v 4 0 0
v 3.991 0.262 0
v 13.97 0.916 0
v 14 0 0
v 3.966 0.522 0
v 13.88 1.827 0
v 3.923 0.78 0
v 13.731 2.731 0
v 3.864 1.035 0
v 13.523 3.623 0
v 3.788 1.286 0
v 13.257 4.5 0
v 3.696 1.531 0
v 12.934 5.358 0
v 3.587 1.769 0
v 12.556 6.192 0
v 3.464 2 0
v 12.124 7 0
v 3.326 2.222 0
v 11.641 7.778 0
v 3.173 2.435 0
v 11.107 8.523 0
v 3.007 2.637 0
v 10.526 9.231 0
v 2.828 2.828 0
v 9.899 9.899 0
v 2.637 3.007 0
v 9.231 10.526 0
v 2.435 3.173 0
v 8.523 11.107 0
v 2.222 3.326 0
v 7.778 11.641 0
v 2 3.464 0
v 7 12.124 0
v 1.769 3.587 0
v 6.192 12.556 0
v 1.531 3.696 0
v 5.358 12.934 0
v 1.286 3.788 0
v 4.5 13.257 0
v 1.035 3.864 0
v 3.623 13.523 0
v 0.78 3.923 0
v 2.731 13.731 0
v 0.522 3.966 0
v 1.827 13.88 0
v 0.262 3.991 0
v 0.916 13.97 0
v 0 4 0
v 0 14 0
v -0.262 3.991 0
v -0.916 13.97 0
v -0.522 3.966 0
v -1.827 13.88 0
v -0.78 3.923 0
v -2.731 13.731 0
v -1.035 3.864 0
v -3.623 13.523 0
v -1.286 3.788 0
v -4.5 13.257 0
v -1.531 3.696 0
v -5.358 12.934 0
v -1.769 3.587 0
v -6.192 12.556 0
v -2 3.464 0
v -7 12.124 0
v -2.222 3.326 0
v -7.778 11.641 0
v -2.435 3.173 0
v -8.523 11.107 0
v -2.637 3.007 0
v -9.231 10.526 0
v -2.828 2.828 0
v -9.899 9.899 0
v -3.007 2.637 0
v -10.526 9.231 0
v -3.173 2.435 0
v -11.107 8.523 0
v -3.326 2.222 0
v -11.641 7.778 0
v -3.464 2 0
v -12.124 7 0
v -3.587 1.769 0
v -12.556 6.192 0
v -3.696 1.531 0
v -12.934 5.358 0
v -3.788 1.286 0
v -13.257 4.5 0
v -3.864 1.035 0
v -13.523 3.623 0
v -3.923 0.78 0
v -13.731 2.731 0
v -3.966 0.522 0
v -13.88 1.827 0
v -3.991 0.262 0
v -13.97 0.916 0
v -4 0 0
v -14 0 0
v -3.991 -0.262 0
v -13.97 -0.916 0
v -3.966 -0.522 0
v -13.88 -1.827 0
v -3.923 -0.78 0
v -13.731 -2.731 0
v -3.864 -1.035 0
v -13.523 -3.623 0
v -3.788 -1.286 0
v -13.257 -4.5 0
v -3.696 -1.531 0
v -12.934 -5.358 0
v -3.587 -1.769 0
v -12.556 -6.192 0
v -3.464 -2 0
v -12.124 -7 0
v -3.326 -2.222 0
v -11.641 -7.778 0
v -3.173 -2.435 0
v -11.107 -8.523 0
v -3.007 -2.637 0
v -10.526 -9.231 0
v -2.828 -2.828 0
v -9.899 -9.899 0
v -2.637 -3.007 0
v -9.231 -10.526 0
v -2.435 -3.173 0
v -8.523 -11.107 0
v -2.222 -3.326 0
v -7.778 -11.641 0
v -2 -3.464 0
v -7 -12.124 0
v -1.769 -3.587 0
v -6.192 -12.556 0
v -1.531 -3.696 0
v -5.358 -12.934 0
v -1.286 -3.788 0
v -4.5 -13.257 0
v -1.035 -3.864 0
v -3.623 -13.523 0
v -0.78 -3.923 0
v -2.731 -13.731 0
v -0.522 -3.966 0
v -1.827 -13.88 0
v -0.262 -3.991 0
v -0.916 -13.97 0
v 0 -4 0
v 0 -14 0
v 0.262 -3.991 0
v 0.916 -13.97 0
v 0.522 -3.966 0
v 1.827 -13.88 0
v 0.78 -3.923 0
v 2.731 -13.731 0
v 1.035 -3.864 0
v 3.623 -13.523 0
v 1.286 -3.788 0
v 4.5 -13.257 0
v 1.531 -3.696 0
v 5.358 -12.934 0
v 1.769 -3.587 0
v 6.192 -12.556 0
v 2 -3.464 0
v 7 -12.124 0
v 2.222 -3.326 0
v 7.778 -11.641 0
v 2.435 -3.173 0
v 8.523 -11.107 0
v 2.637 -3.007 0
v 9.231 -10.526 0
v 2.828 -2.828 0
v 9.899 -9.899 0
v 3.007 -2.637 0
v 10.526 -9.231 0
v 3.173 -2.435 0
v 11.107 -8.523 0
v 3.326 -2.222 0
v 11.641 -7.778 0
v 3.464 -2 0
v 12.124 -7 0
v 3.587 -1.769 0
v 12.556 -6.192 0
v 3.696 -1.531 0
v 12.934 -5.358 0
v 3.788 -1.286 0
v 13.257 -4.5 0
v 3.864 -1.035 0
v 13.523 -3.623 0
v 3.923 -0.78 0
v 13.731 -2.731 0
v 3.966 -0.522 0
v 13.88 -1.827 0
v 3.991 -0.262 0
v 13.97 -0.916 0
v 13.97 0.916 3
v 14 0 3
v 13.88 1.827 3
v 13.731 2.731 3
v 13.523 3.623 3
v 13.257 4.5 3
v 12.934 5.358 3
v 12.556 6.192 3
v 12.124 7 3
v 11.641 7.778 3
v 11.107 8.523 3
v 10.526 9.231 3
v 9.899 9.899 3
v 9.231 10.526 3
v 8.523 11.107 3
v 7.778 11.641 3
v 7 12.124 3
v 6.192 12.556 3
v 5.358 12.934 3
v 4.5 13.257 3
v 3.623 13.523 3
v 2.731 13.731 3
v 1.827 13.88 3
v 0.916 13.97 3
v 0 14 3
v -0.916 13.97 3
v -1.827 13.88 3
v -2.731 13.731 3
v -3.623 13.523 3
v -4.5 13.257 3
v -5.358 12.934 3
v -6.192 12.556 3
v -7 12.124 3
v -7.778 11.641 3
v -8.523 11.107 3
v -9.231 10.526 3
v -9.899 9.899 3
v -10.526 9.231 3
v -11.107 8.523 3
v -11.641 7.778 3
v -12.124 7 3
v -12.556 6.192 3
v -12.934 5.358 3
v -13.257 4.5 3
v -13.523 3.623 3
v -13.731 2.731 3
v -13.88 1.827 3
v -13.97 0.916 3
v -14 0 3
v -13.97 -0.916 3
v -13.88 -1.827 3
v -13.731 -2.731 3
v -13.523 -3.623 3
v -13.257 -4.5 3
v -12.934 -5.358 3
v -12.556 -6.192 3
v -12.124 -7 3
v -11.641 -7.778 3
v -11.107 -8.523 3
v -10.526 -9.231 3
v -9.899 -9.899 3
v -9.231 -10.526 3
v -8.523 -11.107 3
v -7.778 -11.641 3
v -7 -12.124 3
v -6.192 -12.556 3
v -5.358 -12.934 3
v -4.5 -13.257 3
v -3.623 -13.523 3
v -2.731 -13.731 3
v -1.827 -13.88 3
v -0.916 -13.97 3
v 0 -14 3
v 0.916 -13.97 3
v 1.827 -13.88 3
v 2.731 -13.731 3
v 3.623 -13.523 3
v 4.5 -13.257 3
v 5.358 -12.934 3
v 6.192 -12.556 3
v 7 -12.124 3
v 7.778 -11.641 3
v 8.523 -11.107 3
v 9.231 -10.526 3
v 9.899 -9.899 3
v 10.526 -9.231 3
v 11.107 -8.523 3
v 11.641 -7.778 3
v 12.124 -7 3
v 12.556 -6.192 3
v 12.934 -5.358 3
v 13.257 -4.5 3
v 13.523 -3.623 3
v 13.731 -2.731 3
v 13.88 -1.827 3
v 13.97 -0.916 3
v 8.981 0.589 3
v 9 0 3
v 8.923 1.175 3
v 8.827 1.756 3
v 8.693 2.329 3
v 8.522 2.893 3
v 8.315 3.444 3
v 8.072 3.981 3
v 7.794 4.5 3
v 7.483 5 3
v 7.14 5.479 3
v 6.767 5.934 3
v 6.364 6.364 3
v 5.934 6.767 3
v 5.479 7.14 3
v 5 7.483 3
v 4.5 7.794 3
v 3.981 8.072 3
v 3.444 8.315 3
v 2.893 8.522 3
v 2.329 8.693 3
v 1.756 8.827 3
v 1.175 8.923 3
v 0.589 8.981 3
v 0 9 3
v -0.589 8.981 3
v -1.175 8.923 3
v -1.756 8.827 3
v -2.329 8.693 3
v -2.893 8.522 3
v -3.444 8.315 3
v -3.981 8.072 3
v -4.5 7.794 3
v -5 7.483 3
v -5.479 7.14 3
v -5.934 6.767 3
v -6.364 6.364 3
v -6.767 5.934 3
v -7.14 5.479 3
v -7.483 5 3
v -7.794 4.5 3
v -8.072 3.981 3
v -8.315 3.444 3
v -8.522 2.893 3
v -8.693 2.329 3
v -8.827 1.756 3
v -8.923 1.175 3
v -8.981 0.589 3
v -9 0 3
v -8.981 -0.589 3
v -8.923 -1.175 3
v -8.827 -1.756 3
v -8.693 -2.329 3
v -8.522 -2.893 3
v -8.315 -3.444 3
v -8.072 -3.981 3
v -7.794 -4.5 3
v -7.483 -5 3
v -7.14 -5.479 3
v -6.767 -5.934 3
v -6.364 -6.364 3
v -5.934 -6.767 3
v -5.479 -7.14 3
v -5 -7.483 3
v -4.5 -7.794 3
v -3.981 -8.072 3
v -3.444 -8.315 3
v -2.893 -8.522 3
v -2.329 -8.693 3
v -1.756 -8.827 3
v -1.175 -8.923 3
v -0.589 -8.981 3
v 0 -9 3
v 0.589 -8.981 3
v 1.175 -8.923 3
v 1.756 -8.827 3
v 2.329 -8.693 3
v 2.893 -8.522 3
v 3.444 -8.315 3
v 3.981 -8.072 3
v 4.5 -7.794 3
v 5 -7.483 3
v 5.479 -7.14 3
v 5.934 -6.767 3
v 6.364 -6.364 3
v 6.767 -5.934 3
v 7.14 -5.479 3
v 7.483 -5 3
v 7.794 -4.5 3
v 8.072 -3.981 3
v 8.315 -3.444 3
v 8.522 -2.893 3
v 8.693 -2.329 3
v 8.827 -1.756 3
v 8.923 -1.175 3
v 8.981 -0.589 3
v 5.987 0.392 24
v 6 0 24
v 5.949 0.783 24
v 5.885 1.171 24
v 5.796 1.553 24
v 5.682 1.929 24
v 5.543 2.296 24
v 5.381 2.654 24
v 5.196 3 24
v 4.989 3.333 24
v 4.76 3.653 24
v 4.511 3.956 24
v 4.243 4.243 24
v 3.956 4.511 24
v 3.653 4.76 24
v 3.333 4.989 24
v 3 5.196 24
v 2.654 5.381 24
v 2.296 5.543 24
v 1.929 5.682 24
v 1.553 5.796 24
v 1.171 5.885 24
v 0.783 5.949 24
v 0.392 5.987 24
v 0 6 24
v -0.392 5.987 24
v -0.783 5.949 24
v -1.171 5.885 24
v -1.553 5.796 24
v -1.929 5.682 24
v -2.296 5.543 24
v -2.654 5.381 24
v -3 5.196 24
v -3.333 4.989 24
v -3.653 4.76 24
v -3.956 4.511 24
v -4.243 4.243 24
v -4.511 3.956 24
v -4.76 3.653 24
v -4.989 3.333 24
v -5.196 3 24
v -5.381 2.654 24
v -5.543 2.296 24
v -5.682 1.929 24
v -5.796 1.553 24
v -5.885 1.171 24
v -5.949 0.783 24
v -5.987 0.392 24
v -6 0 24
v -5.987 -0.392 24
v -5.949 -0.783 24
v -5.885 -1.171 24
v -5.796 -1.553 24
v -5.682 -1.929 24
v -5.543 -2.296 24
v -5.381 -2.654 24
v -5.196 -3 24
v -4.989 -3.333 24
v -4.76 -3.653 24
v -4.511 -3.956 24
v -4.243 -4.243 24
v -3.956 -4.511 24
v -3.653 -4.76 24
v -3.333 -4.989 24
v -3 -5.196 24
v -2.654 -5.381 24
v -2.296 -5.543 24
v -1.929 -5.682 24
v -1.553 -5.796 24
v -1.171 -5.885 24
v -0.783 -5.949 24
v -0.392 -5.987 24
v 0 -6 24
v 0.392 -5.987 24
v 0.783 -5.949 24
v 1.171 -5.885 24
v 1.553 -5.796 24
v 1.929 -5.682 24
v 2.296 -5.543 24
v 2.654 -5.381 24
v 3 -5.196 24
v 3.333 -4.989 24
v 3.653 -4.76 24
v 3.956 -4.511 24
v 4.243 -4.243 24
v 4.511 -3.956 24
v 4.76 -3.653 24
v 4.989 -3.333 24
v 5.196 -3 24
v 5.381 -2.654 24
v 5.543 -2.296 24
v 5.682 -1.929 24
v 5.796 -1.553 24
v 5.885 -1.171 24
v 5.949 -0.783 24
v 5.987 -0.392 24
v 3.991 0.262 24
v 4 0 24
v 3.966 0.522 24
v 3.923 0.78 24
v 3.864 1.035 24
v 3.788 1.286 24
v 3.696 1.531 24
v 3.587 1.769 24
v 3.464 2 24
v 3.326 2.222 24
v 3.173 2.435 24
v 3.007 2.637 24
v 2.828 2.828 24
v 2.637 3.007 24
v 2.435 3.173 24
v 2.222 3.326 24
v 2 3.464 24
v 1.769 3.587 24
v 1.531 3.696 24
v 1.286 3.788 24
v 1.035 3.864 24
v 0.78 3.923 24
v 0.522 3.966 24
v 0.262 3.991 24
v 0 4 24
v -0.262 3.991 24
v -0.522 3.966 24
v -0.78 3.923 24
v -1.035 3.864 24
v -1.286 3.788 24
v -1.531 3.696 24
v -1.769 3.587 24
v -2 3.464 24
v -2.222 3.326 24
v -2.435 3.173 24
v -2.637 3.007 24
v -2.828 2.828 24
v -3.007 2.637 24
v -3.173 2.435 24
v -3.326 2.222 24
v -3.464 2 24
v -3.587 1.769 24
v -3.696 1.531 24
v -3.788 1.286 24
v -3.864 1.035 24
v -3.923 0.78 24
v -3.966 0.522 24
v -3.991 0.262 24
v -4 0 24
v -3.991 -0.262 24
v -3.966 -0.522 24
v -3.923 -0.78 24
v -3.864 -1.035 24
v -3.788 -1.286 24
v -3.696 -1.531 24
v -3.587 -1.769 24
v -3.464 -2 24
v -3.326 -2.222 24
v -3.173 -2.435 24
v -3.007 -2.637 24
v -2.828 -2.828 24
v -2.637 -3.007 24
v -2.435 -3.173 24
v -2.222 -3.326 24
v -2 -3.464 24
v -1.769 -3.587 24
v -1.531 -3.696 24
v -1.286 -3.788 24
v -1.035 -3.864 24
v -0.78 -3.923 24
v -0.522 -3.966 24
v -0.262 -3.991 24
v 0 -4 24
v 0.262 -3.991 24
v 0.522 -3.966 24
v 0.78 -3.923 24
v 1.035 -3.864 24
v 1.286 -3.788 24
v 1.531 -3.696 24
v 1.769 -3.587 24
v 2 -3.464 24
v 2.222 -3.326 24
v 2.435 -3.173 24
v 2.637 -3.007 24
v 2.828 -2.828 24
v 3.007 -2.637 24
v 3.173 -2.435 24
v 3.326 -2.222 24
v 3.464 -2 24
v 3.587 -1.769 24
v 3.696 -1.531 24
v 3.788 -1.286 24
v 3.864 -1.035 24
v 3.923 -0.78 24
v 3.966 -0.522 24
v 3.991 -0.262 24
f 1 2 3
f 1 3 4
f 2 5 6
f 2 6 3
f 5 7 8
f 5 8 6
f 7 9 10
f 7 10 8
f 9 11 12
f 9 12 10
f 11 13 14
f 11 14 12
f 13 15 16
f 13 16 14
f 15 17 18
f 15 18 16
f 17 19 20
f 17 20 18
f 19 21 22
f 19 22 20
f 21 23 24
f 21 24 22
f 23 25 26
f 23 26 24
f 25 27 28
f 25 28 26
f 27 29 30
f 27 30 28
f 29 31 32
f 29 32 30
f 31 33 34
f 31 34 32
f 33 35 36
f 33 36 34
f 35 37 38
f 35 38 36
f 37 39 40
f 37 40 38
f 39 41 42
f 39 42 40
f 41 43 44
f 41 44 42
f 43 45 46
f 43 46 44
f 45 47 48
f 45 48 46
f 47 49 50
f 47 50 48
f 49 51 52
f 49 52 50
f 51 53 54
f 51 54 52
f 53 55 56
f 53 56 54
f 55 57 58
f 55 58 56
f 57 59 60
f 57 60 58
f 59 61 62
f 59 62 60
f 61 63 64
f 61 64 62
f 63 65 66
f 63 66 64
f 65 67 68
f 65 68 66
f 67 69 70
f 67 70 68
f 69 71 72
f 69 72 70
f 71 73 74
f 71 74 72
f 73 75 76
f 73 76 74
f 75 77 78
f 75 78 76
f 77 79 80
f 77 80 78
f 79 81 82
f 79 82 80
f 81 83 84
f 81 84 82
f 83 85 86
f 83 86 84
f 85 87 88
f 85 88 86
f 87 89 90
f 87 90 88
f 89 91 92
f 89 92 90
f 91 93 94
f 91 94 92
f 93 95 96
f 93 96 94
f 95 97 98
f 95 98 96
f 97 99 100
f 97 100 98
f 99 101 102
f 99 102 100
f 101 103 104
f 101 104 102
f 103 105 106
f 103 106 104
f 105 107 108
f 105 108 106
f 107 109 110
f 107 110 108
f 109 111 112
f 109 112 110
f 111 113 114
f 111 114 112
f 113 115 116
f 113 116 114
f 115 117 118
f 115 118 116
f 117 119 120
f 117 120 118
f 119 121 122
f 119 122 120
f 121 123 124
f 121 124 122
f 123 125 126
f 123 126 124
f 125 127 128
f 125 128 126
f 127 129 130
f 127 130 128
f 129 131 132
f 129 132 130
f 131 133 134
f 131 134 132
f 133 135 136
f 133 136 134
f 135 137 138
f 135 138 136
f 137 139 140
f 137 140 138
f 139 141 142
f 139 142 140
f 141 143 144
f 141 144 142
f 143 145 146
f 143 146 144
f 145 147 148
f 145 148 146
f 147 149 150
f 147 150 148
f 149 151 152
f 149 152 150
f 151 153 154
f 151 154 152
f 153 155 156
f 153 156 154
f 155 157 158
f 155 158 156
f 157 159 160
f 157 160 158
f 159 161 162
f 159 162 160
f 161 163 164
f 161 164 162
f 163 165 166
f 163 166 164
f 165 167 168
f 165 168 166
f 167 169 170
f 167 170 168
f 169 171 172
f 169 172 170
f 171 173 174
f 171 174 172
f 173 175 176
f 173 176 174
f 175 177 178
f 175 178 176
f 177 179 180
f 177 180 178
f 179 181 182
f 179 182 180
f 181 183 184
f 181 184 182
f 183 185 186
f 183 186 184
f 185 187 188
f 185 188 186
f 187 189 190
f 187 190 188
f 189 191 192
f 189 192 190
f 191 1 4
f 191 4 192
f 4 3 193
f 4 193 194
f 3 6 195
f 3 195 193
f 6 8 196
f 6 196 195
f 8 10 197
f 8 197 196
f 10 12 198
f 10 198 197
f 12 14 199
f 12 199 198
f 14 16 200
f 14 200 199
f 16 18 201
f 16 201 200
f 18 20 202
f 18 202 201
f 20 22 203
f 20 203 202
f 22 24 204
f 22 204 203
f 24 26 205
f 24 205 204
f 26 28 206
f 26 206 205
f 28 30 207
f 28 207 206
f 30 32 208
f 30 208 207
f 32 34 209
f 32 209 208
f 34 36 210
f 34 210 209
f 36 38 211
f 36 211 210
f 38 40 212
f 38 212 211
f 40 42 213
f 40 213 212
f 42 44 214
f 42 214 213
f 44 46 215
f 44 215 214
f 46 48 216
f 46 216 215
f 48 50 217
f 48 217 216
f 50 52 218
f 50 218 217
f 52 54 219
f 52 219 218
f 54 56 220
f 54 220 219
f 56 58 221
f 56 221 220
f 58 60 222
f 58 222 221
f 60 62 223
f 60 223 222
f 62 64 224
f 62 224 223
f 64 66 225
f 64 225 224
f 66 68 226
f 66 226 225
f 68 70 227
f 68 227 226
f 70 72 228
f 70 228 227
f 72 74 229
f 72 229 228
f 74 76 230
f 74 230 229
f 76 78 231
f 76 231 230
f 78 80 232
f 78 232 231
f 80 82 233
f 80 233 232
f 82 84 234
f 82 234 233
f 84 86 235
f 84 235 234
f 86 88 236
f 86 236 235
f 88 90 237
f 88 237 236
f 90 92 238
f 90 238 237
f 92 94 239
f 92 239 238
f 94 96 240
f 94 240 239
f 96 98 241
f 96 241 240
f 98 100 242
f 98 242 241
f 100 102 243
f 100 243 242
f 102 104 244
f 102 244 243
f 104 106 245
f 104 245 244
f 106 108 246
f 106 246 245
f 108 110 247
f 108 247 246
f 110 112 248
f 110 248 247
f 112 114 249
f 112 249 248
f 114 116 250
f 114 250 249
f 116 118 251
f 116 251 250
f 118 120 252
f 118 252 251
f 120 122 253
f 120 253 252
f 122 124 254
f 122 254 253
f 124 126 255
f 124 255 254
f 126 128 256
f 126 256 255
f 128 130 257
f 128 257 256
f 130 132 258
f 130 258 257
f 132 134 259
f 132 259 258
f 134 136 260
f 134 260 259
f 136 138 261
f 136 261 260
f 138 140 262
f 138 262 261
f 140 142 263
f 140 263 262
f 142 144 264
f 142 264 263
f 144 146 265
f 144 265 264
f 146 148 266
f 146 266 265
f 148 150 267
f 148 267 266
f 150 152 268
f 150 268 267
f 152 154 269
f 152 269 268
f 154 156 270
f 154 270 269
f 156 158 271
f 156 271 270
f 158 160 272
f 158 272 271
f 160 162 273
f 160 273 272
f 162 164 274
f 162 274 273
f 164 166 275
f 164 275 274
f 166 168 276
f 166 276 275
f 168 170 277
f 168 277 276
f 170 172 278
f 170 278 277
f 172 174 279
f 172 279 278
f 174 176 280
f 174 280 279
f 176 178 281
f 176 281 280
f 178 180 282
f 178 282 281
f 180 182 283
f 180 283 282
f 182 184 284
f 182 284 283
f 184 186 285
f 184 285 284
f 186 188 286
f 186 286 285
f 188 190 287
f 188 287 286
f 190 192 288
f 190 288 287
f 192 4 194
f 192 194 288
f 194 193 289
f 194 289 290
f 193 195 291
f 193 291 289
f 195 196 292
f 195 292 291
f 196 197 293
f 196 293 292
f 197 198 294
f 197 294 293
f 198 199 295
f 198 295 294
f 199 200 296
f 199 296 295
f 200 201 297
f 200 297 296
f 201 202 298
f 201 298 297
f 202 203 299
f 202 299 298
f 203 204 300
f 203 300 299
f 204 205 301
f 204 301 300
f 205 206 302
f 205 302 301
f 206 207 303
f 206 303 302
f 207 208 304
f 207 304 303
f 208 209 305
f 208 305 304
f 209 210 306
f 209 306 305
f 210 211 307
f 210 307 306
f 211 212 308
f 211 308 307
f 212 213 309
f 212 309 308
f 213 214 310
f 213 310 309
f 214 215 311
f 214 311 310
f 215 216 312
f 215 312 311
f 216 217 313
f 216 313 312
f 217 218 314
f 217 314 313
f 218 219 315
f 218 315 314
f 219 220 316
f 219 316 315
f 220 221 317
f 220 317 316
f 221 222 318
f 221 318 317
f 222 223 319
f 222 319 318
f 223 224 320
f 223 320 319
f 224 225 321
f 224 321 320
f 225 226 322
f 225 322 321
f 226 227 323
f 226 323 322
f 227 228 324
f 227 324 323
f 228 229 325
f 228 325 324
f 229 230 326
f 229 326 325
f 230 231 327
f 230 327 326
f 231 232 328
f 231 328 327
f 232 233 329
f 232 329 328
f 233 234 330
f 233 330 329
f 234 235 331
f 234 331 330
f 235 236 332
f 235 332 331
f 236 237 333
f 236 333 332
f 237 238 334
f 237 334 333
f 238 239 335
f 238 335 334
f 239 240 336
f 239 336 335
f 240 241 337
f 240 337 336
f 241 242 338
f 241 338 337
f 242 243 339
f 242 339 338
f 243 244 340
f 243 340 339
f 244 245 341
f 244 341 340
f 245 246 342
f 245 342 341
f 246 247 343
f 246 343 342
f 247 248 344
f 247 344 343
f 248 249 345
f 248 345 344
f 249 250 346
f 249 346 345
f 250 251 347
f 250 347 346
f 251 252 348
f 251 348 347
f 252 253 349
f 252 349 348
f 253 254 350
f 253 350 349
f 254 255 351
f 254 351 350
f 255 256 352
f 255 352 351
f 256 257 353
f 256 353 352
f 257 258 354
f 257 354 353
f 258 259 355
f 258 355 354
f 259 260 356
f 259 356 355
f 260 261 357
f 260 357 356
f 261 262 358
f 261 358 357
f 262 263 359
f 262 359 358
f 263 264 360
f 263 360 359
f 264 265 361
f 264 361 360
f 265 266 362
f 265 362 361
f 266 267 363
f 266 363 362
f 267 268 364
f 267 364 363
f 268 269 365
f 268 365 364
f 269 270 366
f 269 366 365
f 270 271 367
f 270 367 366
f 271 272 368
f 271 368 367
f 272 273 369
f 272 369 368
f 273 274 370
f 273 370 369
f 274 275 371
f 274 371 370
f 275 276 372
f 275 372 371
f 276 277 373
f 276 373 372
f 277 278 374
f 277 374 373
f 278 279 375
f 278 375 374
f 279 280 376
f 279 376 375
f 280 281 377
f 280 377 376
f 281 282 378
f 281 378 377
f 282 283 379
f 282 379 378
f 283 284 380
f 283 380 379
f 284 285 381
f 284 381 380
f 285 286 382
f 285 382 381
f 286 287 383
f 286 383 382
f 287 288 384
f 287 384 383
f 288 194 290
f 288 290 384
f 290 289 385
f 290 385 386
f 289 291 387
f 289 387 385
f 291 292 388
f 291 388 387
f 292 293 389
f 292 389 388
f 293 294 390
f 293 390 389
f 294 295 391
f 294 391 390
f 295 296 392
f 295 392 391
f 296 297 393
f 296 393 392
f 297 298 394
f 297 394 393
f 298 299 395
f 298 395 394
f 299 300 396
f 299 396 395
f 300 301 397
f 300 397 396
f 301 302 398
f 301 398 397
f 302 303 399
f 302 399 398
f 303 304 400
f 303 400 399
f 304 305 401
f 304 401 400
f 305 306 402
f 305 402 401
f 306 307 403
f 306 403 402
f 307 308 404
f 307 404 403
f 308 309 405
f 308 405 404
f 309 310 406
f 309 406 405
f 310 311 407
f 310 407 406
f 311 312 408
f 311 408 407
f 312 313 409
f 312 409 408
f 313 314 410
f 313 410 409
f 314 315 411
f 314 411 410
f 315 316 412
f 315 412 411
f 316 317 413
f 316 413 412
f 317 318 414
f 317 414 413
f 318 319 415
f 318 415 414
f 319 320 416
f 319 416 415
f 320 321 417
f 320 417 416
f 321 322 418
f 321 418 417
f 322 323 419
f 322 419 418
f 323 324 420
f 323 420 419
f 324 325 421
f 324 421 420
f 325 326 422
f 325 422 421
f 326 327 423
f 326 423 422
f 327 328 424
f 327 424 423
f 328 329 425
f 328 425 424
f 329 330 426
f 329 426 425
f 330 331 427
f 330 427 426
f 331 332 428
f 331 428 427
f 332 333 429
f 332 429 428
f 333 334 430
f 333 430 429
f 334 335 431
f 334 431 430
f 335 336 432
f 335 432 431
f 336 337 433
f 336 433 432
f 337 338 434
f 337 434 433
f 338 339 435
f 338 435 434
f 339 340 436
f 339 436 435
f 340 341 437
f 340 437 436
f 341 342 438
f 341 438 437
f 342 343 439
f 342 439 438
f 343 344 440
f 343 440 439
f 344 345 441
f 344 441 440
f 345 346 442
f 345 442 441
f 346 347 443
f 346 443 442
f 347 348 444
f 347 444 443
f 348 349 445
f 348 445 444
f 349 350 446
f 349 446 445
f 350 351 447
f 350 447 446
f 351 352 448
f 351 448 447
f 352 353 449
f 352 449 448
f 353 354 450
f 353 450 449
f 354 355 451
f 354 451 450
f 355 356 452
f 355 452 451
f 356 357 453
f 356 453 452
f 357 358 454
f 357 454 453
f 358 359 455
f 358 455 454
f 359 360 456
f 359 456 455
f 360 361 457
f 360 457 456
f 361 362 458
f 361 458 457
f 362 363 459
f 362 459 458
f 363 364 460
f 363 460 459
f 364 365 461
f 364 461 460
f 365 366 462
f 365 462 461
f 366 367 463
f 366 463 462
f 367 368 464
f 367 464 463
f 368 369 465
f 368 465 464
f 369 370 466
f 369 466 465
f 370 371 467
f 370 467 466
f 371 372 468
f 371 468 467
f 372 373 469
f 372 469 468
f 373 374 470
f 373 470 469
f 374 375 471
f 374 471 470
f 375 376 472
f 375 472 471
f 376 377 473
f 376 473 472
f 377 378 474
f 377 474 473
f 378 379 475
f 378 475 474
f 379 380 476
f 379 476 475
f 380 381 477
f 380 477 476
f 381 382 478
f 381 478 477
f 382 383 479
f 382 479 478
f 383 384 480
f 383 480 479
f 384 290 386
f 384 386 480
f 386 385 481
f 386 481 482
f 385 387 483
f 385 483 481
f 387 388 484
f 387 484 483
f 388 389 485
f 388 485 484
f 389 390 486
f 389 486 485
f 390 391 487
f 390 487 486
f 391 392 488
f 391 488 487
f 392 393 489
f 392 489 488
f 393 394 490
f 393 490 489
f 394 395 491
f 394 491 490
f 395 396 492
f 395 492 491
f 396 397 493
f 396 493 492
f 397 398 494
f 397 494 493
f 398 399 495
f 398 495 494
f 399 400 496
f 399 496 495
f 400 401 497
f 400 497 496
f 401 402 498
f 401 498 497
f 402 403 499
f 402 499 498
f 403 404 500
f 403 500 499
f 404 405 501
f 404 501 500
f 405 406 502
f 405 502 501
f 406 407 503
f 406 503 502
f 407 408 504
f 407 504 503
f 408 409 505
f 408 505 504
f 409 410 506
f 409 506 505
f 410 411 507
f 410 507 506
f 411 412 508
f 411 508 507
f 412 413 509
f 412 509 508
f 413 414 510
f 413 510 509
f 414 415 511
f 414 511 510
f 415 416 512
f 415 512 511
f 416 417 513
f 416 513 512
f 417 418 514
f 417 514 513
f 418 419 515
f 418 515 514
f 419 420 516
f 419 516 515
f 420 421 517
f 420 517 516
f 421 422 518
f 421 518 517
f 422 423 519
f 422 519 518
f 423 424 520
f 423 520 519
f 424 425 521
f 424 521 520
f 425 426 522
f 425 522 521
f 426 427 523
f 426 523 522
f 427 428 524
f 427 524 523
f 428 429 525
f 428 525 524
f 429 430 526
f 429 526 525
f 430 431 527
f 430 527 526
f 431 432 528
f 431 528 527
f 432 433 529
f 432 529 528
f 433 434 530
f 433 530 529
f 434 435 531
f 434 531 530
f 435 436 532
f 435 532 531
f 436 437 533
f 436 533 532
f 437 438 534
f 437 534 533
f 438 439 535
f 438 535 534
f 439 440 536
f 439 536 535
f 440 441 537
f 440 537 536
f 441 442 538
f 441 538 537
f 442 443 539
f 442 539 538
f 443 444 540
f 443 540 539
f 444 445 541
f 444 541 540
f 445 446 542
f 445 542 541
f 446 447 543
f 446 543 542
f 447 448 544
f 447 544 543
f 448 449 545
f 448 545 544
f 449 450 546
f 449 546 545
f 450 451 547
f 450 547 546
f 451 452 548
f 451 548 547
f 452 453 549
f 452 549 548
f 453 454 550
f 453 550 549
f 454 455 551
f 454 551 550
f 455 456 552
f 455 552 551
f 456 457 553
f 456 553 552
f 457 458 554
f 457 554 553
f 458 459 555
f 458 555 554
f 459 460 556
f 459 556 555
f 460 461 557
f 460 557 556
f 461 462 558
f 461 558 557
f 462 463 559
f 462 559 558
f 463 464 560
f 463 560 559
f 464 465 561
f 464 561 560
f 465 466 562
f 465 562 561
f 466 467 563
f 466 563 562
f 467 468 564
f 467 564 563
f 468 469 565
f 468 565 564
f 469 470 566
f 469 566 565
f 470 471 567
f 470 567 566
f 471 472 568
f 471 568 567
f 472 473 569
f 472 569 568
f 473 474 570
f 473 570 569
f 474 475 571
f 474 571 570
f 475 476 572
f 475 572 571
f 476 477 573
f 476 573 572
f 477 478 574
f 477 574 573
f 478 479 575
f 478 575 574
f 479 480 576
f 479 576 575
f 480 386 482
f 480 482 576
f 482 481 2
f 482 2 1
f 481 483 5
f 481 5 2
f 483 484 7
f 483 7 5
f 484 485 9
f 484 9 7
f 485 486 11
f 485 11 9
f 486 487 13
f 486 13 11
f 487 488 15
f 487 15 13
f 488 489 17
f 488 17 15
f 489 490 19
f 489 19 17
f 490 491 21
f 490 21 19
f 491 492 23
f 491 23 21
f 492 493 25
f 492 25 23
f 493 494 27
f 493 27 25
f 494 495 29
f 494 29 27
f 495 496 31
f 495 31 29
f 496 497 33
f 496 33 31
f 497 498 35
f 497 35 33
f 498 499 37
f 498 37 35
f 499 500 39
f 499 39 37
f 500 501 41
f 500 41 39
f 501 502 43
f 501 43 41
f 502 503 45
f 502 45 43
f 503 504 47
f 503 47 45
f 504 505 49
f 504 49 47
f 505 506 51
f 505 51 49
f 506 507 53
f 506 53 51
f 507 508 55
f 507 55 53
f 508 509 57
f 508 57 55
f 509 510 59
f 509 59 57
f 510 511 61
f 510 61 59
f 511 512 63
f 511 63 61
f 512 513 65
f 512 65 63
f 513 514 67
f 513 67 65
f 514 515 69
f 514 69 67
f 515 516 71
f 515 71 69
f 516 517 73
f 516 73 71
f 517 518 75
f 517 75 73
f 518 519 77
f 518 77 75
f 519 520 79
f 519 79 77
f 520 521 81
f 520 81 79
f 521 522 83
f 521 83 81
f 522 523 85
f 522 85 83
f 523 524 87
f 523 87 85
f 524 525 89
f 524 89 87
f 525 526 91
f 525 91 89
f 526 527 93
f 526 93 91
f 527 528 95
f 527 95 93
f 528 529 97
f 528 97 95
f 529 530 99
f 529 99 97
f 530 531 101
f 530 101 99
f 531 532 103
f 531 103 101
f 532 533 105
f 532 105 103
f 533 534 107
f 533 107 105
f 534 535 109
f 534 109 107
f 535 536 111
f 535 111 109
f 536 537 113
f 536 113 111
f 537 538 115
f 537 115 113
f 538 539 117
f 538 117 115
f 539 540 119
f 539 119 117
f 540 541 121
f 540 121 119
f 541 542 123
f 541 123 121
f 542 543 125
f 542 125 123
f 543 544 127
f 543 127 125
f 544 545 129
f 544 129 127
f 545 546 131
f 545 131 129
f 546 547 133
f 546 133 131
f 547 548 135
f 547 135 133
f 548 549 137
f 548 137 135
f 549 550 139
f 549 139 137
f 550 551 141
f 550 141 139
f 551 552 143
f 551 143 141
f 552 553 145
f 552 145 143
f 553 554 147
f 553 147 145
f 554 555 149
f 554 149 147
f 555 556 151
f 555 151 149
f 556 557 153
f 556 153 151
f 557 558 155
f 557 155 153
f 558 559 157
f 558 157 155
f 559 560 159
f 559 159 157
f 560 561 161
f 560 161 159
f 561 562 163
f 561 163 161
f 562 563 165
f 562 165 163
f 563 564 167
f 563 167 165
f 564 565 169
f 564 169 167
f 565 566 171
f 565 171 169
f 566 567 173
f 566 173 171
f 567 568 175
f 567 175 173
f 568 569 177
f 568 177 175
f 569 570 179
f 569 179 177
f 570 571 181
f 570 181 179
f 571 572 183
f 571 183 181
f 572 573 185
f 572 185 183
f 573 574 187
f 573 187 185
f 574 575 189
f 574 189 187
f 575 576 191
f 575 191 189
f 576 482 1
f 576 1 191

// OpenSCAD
// Original MechIntel educational model. CC0-1.0. Units: mm.
// Not a standardized or load-rated component.
$fn=96;
// Section points: [radius, height], mm. Edit to change the profile.
section=[[4, 0], [14, 0], [14, 3], [9, 3], [6, 24], [4, 24]];
rotate_extrude($fn=96) polygon(points=section);
